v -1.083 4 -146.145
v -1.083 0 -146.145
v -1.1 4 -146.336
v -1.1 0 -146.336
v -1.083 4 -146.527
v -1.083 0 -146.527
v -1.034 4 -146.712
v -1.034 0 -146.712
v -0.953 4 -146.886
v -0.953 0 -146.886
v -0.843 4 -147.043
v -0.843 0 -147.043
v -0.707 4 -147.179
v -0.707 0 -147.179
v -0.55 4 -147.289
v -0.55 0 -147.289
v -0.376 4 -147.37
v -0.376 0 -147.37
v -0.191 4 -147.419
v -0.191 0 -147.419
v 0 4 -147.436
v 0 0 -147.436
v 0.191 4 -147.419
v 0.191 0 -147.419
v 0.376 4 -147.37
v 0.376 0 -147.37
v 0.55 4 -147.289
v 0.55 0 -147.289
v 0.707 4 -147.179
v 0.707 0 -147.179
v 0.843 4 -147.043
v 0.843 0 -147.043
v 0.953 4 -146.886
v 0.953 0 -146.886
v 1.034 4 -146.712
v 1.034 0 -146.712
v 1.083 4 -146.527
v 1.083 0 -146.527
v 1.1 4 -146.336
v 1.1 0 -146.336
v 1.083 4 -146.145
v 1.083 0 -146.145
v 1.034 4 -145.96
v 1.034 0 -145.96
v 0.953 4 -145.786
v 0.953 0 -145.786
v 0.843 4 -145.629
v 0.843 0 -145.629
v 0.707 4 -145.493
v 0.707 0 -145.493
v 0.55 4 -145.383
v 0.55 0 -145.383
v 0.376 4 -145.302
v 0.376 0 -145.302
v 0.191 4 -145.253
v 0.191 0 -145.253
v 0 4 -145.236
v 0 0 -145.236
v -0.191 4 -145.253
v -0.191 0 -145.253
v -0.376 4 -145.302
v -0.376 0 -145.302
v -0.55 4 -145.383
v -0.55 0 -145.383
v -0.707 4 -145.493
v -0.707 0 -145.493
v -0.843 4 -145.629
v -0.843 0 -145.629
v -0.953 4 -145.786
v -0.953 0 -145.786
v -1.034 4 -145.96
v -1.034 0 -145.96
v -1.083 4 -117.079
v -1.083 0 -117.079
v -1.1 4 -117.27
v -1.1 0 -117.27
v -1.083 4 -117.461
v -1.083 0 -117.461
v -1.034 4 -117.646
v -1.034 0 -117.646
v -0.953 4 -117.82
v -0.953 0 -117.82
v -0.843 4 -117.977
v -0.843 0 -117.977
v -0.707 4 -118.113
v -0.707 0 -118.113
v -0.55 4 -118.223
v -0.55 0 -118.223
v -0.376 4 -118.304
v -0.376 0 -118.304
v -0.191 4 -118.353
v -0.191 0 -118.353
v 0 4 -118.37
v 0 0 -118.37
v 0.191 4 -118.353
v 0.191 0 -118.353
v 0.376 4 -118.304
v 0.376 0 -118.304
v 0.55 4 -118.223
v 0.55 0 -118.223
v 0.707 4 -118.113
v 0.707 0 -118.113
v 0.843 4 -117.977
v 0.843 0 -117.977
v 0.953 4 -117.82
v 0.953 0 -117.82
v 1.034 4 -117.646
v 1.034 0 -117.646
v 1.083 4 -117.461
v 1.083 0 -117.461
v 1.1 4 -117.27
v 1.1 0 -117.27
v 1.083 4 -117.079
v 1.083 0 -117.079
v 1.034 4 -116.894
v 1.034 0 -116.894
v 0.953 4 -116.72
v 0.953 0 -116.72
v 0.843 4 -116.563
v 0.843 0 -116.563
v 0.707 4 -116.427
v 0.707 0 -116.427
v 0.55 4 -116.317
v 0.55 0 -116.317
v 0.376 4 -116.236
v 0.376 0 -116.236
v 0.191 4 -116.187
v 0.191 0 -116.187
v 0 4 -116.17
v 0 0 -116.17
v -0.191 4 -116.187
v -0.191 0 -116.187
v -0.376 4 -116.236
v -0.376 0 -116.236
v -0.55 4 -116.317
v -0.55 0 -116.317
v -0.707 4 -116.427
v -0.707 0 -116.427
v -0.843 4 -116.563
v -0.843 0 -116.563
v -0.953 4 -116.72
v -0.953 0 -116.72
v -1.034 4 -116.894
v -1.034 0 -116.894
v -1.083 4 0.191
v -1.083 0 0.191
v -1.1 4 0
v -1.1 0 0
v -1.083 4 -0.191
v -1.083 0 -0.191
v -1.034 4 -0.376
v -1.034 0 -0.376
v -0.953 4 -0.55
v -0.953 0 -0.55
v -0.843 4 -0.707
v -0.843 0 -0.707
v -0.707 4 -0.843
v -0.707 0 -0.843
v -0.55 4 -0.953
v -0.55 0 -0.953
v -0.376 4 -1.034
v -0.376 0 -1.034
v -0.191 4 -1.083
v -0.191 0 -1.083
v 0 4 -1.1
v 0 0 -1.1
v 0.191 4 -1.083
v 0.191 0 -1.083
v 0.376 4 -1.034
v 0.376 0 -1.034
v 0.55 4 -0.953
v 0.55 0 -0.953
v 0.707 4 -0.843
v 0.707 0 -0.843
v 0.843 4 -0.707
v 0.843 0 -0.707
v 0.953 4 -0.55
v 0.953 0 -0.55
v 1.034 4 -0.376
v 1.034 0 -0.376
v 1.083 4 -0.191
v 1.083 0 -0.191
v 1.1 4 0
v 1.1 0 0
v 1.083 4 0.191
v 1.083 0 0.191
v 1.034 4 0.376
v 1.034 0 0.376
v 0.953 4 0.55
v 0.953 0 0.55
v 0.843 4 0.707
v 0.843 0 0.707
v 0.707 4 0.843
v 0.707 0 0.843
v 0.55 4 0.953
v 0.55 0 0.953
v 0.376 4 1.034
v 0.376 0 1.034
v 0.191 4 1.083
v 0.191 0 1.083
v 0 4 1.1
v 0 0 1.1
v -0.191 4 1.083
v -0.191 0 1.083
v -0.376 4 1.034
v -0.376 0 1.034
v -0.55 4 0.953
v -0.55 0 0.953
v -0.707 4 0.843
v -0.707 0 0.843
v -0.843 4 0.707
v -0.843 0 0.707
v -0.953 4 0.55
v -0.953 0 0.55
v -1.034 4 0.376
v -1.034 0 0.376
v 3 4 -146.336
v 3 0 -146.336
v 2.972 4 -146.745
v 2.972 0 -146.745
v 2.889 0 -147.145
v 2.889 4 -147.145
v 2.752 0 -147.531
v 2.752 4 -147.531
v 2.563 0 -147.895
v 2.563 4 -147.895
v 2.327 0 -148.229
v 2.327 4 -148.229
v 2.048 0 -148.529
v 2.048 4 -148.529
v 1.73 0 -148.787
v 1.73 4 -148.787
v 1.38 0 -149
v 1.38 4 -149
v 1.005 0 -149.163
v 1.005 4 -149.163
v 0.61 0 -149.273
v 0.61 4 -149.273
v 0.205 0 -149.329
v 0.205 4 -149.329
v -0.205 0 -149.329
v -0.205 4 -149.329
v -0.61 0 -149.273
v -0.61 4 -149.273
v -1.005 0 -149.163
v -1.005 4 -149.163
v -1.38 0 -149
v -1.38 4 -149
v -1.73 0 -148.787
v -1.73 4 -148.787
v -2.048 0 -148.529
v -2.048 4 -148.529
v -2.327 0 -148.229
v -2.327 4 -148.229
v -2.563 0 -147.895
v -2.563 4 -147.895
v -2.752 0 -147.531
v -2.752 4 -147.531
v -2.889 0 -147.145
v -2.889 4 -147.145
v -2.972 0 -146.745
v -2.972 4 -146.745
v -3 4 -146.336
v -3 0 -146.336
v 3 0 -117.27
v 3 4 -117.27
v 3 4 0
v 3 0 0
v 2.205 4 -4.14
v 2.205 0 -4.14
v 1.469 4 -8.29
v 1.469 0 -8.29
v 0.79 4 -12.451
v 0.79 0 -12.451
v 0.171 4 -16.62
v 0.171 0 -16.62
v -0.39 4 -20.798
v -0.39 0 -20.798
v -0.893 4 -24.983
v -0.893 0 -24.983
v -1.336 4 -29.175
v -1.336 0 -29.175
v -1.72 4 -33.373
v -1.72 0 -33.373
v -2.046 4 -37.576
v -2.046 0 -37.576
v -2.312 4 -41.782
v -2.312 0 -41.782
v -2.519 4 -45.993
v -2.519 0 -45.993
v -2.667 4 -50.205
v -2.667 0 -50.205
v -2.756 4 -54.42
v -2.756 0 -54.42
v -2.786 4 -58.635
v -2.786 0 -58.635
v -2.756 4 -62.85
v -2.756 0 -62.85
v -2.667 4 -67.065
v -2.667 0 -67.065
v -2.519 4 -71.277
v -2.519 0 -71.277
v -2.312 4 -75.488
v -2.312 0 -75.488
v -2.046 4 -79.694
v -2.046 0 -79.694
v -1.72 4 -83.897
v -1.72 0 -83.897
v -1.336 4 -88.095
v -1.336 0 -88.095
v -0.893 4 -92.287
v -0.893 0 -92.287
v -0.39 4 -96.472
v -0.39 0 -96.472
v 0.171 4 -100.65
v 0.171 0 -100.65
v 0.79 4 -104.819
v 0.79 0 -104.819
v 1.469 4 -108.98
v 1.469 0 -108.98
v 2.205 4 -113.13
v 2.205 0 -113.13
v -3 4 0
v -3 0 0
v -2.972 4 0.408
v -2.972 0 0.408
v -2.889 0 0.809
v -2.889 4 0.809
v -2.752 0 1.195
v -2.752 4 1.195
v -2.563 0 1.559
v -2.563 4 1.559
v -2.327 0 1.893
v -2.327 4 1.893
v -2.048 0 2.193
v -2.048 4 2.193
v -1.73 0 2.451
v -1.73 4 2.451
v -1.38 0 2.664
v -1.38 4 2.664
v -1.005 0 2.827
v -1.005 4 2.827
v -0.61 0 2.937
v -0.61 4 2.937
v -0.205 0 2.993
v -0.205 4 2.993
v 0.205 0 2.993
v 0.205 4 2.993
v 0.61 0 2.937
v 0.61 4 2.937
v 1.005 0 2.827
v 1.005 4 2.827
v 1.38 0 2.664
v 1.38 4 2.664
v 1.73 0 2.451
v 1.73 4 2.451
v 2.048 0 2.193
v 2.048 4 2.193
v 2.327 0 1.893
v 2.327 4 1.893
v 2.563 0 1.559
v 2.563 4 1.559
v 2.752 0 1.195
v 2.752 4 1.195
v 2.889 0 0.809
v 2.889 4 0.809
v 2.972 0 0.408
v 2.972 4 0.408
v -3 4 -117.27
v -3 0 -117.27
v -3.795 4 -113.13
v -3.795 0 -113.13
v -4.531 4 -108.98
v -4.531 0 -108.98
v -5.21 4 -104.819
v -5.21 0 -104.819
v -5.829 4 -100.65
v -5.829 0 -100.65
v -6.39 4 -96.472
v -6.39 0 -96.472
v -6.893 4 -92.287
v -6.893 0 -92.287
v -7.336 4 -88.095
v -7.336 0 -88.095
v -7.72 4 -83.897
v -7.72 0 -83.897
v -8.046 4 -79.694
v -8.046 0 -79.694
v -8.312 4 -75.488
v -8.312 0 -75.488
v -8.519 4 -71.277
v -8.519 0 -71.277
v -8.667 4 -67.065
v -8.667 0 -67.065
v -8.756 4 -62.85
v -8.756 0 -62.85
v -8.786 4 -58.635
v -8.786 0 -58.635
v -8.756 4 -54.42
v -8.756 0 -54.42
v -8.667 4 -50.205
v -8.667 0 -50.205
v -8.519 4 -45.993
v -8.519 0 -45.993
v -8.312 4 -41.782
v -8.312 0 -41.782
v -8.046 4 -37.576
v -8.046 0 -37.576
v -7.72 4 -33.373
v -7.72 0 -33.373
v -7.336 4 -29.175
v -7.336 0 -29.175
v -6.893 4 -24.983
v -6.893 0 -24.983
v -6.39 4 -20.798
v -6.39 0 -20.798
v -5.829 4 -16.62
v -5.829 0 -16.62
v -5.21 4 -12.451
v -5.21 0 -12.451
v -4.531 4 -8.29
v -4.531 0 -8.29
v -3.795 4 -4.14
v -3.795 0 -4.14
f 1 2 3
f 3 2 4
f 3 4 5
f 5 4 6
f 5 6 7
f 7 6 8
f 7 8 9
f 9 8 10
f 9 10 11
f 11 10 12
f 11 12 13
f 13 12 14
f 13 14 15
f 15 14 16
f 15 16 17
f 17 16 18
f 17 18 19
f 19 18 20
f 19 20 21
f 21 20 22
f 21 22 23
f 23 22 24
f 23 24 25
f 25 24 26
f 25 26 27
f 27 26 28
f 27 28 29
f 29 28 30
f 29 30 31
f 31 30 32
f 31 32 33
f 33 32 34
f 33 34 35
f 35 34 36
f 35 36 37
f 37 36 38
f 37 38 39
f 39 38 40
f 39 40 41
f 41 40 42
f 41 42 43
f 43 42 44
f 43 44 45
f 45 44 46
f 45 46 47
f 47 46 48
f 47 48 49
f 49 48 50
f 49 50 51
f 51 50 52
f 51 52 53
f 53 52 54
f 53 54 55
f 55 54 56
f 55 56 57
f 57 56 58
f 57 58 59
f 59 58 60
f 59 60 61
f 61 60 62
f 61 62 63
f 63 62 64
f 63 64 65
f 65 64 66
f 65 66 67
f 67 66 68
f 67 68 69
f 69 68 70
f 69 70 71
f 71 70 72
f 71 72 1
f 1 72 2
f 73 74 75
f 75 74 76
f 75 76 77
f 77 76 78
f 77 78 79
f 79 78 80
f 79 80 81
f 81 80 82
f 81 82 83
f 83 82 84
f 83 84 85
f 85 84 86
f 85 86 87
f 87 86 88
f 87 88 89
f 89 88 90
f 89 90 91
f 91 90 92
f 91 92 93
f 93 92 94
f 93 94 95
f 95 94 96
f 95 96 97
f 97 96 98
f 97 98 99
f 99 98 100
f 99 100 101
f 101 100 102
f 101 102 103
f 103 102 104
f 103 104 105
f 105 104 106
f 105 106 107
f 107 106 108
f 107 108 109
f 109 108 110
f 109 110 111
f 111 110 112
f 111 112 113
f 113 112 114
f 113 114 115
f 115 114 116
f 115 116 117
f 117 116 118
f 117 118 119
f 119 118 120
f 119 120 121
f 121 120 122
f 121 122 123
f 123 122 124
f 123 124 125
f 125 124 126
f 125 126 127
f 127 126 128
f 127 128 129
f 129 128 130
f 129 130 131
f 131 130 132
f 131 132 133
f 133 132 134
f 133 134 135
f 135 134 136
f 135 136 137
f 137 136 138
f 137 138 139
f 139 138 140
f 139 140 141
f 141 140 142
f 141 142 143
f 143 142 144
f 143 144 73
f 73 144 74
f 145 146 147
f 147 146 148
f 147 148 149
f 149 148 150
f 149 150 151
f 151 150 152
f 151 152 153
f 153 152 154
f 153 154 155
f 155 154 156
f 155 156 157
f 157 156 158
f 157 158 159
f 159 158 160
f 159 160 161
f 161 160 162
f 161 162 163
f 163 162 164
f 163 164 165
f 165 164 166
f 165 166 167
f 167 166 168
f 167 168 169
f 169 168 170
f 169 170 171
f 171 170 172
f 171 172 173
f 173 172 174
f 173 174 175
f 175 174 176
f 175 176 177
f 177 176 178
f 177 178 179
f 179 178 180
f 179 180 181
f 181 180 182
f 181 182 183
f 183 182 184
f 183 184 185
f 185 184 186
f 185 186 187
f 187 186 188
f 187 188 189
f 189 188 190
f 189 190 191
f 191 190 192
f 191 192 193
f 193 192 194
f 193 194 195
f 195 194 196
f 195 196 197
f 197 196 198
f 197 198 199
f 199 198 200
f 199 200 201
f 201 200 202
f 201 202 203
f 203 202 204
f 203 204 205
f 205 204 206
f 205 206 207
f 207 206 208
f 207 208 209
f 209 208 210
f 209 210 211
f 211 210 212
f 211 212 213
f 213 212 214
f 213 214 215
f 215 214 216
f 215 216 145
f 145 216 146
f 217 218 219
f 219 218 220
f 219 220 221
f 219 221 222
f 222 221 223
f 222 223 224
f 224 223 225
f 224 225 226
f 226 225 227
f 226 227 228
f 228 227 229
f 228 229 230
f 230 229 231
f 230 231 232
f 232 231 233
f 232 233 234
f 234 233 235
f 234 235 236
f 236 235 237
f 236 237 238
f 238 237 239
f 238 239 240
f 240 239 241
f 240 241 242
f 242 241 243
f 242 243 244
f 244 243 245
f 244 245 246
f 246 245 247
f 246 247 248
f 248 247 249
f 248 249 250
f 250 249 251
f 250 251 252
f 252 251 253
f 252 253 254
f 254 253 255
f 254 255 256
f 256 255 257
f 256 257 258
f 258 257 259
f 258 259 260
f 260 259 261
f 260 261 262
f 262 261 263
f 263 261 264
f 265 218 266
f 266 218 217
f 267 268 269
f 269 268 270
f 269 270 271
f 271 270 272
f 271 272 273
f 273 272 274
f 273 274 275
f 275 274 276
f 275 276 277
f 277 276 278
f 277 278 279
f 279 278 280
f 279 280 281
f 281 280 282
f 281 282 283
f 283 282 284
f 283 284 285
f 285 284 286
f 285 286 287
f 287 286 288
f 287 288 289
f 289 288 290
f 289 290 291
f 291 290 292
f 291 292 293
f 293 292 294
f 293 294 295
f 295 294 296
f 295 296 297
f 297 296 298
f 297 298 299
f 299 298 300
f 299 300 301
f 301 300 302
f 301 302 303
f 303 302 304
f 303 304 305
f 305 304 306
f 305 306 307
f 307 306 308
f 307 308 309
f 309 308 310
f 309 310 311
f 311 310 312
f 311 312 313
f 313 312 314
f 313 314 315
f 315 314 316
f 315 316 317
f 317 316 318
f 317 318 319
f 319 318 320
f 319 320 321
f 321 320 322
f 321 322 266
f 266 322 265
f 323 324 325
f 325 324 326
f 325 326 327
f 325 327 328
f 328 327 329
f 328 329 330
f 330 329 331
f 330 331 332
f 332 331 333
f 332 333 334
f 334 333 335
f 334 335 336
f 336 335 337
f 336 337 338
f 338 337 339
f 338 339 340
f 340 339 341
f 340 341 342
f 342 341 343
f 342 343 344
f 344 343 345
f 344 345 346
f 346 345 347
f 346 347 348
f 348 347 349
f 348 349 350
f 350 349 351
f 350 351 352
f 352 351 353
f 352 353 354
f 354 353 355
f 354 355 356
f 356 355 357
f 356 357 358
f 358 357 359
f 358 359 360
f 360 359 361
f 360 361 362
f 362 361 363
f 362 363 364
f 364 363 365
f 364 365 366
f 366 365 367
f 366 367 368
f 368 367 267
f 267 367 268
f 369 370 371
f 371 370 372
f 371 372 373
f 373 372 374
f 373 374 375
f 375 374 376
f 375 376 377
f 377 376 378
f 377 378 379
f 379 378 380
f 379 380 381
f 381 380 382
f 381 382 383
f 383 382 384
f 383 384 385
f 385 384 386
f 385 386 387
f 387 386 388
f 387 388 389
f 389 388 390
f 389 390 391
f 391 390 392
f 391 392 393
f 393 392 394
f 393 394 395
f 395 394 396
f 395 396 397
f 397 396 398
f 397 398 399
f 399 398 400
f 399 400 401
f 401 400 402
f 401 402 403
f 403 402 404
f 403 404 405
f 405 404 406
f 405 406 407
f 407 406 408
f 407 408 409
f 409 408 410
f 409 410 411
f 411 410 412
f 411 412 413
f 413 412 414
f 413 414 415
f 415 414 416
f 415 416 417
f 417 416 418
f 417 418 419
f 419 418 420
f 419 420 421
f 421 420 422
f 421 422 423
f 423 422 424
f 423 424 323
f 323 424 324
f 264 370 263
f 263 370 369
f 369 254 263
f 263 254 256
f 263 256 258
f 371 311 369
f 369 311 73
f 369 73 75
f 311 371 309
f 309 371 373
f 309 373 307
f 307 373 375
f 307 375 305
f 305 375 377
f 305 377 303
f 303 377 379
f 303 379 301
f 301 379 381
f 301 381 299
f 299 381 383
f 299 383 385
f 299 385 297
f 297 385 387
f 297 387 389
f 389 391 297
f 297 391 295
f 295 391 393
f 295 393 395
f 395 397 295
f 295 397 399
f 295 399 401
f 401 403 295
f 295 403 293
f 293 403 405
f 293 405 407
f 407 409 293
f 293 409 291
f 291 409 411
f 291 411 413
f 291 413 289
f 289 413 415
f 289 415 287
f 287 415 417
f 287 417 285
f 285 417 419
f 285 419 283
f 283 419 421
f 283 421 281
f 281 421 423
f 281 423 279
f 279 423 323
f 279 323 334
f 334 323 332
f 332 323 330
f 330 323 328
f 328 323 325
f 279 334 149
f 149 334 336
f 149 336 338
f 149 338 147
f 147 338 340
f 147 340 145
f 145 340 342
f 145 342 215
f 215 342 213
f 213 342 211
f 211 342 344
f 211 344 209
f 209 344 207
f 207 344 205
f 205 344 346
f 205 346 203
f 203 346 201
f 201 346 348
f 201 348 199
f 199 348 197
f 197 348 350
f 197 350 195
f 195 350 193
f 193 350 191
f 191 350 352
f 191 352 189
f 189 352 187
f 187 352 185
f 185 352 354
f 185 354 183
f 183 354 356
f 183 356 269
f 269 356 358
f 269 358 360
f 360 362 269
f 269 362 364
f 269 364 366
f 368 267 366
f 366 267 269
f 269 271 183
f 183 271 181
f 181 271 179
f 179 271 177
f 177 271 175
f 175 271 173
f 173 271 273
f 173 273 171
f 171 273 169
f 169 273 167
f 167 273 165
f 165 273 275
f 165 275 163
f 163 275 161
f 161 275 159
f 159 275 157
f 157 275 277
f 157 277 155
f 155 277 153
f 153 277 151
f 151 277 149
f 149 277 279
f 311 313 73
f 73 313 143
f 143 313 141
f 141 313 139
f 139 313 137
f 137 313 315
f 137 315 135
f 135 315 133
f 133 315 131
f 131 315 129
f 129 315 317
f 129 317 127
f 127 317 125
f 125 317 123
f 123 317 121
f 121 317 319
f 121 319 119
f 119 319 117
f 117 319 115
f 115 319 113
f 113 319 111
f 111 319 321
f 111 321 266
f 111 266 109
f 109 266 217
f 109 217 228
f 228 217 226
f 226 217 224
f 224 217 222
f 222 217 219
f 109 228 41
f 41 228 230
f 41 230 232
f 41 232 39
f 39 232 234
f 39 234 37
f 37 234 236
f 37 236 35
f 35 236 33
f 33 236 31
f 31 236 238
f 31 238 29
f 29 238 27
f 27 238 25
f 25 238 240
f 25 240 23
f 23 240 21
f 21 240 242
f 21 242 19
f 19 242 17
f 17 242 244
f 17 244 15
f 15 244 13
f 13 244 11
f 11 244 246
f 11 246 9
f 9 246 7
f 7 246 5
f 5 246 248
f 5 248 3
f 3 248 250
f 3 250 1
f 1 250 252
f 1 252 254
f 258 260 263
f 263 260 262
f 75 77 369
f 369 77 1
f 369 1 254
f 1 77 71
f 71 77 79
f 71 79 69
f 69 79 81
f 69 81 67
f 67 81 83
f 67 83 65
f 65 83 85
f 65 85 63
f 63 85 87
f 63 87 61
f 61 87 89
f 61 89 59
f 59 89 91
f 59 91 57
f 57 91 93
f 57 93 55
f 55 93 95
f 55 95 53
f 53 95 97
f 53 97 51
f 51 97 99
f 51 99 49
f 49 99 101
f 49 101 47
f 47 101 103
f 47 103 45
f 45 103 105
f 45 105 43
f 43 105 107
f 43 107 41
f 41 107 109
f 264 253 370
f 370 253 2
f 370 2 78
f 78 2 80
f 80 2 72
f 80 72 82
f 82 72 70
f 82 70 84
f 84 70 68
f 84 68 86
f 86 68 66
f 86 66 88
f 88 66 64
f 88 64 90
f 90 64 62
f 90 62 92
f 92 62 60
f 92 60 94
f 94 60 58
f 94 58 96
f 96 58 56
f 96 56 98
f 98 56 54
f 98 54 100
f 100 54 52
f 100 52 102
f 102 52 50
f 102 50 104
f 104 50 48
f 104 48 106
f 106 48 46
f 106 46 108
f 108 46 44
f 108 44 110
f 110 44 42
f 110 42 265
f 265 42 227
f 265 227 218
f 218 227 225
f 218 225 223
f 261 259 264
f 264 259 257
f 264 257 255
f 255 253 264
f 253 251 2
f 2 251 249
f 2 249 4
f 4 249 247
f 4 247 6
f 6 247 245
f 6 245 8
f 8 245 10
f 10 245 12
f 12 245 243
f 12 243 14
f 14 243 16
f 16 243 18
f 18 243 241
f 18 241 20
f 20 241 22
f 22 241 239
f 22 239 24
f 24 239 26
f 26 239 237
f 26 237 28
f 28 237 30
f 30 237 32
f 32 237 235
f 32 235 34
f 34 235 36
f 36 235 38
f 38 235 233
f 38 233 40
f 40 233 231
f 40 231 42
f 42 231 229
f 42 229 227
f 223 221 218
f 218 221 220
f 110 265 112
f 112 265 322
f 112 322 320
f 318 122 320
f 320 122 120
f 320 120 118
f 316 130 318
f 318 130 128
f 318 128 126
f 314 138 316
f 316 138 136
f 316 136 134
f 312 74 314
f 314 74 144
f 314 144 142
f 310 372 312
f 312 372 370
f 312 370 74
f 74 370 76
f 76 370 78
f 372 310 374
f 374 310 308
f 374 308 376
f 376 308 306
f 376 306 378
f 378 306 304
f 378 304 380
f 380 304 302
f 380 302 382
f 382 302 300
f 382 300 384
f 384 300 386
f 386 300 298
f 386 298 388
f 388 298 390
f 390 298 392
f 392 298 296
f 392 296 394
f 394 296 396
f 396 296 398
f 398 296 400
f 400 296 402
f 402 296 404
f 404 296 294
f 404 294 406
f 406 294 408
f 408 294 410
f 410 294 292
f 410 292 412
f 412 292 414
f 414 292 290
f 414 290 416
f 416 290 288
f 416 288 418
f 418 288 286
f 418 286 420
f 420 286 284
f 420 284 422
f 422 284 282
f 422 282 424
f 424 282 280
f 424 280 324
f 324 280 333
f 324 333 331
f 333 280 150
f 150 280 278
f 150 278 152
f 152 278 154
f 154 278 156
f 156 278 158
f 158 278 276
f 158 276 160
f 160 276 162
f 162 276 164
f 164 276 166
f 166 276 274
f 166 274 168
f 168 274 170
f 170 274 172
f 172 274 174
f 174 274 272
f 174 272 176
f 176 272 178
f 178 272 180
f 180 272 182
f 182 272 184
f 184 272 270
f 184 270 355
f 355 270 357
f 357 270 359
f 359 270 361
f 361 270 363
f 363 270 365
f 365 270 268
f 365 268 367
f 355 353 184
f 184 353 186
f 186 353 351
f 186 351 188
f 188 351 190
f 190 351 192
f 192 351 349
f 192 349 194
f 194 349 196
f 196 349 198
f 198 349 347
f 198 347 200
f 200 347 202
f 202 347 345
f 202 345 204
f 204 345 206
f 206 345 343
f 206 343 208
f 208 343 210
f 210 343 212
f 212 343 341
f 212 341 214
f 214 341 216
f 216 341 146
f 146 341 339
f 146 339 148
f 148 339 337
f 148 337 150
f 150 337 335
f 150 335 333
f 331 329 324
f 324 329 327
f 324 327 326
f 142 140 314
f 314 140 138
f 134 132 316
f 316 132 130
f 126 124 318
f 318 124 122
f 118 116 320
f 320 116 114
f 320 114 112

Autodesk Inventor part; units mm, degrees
ref_plane "YZ Plane" through (0, 0, 0) normal (1, 0, 0) x (0, 1, 0)
ref_plane "XZ Plane" through (0, 0, 0) normal (0, 1, 0) x (-1, 0, 0)
ref_plane "XY Plane" through (0, 0, 0) normal (0, 0, 1) x (1, 0, 0)
sketch "Sketch1" plane through (0, 0, 0) normal (0, 1, 0) x (-1, 0, 0)
  line L0 (0, 0) -> (0, -146.336) construction
  line L1 (3, 0) -> (3, -146.336)
  line L2 (-3, -146.336) -> (-3, 0)
  arc A0 (3, 0) -> (-3, 0) centre (0, 0) ccw
  arc A1 (-3, -146.336) -> (3, -146.336) centre (0, -146.336) ccw
  circle A2 centre (0, 0) radius 1.1
  circle A3 centre (0, -146.336) radius 1.1
  circle A4 centre (0, -117.27) radius 1.1
  arc A5 (-3, -117.27) -> (-3, 0) centre (-297.2141, -58.635) ccw
  arc A6 (3, -117.27) -> (3, 0) centre (-291.2141, -58.635) ccw
  point P0 (0, -73.168)
  dimension "d0" = 2.2
  dimension "d1" = 2.2
  dimension "d2" = 6
  dimension "d3" = 146.336
  dimension "d14" = 2.2
  dimension "d15" = 117.27
  dimension "d16" = 300
  dimension "d17" = 300
extrude "Extrusion1" add sketch "Sketch1" along normal blind 4 contours A6 L1 | L1 A1 L2 A5 A0
